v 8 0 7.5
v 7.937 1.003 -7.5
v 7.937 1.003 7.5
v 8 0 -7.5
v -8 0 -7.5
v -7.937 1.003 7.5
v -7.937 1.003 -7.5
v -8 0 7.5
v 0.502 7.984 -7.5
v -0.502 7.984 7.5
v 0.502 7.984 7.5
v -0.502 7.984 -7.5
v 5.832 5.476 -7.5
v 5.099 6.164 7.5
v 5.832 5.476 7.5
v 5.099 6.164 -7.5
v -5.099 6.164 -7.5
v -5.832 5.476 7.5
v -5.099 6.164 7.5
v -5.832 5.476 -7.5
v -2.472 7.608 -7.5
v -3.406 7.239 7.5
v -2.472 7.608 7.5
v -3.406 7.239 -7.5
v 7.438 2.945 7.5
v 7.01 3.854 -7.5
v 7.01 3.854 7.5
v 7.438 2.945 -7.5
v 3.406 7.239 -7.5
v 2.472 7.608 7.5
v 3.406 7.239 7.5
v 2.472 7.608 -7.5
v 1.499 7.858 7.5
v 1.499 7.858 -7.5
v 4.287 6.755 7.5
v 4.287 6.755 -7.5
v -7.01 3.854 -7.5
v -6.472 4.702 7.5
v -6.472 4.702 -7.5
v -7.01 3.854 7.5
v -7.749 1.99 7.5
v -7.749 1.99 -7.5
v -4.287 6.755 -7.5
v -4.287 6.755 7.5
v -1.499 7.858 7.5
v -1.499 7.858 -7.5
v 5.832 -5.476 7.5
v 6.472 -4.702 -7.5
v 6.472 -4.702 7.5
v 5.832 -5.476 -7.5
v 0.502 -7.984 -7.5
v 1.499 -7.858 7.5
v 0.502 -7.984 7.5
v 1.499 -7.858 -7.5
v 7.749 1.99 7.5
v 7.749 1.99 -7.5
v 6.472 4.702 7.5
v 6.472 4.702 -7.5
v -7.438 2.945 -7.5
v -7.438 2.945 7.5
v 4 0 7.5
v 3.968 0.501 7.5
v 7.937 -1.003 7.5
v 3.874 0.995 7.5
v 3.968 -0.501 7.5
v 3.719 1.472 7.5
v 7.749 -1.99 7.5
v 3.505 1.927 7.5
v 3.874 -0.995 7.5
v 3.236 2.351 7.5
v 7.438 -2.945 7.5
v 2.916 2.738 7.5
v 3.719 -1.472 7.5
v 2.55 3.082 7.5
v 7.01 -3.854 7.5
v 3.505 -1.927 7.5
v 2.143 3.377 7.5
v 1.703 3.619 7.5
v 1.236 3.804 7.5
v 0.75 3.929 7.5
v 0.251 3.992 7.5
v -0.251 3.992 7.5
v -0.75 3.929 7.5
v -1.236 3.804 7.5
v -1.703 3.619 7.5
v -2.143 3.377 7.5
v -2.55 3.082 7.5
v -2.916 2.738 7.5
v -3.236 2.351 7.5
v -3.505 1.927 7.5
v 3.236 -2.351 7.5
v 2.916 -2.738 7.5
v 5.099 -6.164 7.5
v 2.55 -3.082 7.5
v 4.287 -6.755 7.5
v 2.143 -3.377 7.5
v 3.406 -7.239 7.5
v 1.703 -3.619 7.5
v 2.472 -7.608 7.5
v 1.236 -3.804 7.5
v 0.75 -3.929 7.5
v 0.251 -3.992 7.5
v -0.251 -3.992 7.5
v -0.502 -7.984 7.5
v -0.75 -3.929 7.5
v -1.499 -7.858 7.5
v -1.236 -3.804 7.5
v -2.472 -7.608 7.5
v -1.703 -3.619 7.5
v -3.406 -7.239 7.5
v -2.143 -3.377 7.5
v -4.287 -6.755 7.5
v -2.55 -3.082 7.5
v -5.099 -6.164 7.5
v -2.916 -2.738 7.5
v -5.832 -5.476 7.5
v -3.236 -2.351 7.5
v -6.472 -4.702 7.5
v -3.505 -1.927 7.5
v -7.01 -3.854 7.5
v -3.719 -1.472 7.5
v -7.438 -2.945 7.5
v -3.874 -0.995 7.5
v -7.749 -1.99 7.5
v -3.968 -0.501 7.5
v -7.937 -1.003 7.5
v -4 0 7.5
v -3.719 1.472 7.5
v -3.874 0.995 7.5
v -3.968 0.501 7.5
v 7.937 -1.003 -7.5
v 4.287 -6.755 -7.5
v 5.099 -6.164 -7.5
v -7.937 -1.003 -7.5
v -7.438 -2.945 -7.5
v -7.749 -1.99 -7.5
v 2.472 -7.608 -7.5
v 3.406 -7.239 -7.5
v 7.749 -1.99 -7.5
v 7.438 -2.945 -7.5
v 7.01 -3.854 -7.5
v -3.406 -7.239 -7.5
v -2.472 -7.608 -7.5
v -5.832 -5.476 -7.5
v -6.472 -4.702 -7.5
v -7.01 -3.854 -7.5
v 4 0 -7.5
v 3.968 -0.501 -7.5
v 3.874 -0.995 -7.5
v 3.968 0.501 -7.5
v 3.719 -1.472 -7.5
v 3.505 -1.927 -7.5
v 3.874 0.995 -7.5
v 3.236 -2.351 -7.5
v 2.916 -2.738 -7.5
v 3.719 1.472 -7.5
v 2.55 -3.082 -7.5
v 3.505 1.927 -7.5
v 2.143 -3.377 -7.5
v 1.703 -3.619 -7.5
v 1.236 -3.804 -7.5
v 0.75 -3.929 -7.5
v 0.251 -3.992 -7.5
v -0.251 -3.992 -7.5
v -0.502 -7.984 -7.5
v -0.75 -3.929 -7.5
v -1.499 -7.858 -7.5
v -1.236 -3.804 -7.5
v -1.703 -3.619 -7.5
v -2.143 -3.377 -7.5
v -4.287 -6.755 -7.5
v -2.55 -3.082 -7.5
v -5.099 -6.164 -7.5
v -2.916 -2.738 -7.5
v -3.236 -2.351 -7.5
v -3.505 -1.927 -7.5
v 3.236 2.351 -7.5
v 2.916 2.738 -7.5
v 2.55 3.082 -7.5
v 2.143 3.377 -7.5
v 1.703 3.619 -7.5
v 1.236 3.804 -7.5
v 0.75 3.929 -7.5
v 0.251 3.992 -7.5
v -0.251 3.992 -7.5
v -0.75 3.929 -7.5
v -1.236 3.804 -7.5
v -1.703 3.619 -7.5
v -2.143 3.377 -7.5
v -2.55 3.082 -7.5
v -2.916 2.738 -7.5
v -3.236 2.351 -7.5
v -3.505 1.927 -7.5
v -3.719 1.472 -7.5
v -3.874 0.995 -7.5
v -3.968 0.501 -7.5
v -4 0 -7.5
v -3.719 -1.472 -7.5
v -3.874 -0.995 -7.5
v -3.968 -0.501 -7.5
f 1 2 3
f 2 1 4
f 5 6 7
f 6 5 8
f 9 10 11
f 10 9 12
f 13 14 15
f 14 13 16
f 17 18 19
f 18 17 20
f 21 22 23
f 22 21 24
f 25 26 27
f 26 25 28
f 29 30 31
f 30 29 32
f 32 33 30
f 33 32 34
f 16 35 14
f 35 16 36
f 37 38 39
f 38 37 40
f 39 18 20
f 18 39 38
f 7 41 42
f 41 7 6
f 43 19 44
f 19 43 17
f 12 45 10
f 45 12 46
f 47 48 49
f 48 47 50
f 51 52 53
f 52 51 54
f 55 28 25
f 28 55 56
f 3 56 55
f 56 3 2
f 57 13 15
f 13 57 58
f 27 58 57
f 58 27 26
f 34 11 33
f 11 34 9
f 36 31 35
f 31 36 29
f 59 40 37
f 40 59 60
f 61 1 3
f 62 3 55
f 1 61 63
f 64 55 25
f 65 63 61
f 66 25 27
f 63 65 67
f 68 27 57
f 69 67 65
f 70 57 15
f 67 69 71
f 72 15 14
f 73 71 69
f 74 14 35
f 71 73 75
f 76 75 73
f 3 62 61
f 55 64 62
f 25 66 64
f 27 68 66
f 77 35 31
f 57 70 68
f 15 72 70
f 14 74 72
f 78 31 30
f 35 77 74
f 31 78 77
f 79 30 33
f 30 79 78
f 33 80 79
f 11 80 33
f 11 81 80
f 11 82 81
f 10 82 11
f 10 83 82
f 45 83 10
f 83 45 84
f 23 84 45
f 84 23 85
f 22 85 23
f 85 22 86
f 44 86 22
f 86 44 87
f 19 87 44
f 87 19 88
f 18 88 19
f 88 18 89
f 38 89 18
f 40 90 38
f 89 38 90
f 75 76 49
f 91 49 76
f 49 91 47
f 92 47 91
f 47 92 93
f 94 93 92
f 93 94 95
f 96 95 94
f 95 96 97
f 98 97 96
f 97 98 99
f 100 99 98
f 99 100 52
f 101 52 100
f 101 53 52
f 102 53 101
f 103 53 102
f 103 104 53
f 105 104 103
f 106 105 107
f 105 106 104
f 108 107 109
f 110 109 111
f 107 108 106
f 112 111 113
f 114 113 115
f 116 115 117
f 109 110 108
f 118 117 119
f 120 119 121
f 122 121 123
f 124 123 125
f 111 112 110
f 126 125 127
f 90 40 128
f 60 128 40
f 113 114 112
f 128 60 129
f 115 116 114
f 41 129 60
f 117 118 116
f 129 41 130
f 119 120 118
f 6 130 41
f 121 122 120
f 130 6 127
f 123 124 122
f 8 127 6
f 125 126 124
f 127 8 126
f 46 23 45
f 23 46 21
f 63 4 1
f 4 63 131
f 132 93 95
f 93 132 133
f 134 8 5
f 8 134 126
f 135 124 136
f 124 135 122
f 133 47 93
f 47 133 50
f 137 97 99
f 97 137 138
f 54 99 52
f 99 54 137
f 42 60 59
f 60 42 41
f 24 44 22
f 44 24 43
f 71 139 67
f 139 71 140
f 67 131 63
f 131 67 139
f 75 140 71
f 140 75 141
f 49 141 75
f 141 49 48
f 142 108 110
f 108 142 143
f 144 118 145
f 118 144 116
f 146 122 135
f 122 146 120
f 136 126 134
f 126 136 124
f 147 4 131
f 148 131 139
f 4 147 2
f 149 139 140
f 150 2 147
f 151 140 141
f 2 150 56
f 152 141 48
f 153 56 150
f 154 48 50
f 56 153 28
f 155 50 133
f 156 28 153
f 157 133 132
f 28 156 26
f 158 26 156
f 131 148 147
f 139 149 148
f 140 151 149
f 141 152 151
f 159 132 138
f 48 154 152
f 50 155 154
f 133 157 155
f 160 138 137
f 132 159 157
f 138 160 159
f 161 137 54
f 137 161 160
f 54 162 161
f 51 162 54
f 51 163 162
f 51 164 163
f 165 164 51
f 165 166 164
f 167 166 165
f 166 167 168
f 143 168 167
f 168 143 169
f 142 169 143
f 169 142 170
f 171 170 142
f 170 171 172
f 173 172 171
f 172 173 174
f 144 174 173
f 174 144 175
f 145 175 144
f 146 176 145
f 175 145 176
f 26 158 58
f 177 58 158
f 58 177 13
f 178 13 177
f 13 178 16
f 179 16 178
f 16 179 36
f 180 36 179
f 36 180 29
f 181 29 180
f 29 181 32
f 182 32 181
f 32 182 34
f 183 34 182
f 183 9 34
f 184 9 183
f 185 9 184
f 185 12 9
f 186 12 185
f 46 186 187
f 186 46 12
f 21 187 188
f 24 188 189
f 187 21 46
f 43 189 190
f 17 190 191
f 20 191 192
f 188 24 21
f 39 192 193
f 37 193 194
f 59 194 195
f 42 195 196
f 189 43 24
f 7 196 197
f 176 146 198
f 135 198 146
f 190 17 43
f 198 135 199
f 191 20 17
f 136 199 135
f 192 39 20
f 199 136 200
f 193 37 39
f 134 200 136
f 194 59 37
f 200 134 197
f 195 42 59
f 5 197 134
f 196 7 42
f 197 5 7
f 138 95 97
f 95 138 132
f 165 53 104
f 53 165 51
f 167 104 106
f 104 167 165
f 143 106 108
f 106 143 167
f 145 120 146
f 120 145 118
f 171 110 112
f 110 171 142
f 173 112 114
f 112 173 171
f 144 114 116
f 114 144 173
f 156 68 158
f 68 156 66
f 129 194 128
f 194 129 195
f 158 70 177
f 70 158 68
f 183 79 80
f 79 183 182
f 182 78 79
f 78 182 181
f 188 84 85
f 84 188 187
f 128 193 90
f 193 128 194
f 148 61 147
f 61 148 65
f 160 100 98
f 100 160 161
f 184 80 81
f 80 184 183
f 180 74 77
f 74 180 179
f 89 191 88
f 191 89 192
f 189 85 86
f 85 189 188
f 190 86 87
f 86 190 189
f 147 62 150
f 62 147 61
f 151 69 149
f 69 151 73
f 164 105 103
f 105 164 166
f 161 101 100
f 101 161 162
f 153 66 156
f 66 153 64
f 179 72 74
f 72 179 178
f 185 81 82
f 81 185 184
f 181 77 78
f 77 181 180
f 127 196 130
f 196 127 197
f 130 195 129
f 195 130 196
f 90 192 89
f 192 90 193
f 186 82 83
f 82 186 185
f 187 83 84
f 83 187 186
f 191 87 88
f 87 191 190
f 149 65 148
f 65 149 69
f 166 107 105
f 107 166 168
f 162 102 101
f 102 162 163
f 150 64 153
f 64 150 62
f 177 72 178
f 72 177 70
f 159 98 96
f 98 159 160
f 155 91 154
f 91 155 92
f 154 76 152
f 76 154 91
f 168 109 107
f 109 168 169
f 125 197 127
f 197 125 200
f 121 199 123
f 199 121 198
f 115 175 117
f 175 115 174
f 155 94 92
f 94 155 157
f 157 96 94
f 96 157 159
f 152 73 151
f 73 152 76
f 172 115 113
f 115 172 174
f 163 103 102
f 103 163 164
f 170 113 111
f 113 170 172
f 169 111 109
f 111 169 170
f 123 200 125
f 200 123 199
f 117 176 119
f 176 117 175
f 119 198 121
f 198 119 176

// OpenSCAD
$fn = 50;


difference() {
	union() {
		translate(v = [0, 0, -7.5000000000]) {
			cylinder(h = 15, r = 8.0000000000);
		}
	}
	union() {
		translate(v = [0, 0, -100.0000000000]) {
			cylinder(h = 200, r = 4.0000000000);
		}
	}
}
